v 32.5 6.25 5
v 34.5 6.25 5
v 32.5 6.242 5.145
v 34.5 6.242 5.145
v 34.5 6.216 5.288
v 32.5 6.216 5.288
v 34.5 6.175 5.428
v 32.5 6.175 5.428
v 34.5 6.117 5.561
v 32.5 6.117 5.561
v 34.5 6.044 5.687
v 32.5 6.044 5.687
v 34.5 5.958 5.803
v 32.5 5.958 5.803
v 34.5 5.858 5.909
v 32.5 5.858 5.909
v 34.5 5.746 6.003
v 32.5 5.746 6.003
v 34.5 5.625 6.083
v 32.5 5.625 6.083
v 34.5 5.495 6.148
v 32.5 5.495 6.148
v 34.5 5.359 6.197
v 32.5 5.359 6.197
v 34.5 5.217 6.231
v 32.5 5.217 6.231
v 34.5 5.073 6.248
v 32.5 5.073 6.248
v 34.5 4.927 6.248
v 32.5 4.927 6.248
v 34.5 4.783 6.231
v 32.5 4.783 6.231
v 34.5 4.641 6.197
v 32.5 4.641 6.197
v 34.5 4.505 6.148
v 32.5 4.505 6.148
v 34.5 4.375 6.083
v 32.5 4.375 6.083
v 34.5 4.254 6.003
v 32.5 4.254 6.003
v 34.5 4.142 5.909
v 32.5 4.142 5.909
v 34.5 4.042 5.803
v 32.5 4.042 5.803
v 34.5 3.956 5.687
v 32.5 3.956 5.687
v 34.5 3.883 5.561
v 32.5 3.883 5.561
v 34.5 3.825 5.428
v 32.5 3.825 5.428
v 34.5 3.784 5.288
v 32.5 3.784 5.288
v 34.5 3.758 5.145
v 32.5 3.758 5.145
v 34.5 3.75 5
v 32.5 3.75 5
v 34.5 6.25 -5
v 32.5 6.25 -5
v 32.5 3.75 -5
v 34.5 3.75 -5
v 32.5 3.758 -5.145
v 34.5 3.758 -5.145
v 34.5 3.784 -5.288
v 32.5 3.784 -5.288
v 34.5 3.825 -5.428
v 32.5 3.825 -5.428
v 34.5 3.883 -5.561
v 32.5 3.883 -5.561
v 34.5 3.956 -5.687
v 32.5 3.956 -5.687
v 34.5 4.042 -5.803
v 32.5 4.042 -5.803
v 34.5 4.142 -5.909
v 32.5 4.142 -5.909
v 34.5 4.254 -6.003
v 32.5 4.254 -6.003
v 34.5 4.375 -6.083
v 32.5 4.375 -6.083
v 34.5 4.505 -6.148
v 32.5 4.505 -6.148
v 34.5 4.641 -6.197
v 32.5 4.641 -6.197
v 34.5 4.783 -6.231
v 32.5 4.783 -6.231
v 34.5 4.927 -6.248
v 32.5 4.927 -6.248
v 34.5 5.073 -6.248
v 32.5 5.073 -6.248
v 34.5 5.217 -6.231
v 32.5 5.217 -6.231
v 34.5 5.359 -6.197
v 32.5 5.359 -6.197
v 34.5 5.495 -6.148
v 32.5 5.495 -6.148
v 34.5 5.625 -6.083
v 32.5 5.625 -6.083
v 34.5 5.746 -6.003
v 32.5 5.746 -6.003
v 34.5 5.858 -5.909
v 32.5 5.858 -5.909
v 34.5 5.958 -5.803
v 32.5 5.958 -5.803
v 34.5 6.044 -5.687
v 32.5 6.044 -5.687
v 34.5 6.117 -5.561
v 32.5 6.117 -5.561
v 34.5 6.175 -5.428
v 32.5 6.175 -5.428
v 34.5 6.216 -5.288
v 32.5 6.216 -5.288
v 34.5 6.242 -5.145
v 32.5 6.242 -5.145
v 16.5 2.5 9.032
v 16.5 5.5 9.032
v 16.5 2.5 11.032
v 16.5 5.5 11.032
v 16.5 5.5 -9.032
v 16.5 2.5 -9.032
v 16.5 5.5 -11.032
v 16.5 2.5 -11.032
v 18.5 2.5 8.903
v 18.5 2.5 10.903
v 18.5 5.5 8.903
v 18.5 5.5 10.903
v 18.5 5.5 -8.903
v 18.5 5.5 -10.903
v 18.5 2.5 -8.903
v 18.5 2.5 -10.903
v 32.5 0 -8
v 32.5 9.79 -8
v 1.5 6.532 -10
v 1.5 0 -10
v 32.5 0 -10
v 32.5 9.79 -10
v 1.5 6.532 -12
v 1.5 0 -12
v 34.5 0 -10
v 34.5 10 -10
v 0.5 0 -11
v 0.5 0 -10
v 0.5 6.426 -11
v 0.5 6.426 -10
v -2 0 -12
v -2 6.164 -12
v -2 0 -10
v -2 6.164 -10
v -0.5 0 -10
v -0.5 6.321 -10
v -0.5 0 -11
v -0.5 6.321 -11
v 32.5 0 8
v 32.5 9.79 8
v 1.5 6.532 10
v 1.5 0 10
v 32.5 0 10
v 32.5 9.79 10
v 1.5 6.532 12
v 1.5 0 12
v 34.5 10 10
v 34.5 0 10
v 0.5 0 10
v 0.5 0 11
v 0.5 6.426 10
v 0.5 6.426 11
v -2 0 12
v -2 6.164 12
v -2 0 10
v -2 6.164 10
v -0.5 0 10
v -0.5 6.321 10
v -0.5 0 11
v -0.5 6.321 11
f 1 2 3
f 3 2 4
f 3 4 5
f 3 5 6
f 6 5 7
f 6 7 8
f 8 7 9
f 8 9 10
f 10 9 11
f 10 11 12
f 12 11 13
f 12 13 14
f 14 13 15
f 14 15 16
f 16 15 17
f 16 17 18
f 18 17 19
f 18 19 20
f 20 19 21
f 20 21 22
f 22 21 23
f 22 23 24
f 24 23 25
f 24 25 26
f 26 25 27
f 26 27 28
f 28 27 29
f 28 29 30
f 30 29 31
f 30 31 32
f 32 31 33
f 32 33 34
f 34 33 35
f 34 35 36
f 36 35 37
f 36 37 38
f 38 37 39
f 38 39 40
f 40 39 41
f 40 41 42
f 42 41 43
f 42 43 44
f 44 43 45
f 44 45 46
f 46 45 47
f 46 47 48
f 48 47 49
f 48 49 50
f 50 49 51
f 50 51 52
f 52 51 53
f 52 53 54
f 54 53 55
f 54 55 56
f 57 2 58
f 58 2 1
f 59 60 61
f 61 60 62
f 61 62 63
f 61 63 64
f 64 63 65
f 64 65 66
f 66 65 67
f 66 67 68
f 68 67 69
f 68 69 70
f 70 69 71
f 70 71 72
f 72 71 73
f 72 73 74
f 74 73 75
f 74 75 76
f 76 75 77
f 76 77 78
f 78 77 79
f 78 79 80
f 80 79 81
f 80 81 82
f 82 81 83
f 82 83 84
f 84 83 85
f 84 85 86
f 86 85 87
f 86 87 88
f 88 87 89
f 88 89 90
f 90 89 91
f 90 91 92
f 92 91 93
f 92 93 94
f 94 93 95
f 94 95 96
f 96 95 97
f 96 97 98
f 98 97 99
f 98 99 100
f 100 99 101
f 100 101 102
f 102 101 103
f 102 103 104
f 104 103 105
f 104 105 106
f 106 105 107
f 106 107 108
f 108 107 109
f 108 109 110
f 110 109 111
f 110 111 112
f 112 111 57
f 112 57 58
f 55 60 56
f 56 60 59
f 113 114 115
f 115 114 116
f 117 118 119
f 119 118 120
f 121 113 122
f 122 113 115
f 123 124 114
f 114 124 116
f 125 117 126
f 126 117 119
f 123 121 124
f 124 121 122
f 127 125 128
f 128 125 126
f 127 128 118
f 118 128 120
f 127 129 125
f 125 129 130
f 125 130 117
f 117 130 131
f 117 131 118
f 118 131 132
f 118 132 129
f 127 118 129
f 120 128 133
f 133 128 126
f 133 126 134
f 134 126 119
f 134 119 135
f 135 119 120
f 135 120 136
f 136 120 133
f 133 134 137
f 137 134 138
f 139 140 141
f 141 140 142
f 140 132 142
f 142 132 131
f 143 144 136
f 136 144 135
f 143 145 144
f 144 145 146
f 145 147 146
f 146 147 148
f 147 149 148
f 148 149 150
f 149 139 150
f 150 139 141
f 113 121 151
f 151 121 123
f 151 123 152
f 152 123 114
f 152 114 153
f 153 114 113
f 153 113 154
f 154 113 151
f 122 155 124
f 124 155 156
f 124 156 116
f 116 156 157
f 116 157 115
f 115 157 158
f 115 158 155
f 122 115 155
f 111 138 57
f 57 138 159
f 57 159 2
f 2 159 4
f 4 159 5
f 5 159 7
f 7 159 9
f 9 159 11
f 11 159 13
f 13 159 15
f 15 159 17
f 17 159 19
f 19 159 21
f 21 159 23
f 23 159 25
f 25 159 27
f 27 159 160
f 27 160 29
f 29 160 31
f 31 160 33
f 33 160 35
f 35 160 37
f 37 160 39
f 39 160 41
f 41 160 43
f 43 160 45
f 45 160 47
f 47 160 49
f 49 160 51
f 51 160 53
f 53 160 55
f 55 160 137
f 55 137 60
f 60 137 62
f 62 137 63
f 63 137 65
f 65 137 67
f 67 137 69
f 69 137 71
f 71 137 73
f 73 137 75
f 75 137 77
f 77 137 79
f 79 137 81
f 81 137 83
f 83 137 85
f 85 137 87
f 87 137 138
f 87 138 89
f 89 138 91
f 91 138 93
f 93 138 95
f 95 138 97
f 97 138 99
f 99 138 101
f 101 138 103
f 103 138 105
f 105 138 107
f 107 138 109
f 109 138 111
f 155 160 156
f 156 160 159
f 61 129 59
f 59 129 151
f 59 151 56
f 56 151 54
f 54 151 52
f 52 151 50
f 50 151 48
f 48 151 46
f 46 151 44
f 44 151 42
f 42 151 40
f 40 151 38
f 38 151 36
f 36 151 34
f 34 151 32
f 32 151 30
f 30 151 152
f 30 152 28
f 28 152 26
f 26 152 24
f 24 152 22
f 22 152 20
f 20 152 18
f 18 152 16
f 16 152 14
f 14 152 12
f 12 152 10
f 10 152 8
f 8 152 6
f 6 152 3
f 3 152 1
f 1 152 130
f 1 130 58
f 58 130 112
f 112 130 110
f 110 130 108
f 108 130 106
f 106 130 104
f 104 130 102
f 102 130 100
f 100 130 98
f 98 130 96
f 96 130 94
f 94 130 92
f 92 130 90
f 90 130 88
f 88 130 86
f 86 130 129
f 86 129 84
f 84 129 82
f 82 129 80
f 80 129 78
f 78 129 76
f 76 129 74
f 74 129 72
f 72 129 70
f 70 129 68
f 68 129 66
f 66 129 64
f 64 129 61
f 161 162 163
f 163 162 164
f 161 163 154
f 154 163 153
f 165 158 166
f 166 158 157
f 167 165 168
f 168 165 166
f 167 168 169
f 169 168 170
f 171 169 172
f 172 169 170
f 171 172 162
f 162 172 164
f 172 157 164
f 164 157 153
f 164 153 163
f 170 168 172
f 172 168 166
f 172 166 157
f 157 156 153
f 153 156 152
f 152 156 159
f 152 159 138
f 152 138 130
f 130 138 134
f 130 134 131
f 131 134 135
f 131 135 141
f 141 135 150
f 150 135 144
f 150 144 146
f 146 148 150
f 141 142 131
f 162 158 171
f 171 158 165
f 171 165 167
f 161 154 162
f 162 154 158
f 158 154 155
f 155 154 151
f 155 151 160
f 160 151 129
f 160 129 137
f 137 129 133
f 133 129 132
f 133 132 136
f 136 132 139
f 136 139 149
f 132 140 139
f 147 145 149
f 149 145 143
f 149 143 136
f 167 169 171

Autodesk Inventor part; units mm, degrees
ref_plane "YZ Plane" through (0, 0, 0) normal (1, 0, 0) x (0, 1, 0)
ref_plane "XZ Plane" through (0, 0, 0) normal (0, 1, 0) x (-1, 0, 0)
ref_plane "XY Plane" through (0, 0, 0) normal (0, 0, 1) x (1, 0, 0)
sketch "Sketch1" plane through (0, 0, 0) normal (0, 1, 0) x (-1, 0, 0)
  line L0 (-0.5, 11) -> (0.5, 11) construction
  line L1 (0.5, 11) -> (0.5, -11) construction
  line L2 (0.5, -11) -> (-0.5, -11) construction
  line L3 (-0.5, -11) -> (-0.5, 11) construction
  line L4 (-0.5, 11) -> (0.5, -11) construction
  line L5 (0.5, 11) -> (-0.5, -11) construction
  line L6 (-0.5, 11) -> (-0.5, 9.9373) construction
  line L7 (-1.5, 10) -> (-1.5, 12)
  line L8 (-1.5, 12) -> (1.5, 12)
  line L9 (1.5, 12) -> (1.5, 10)
  line L10 (1.5, 10) -> (-1.5, 12) construction
  line L11 (-1.5, 10) -> (1.5, 12) construction
  line L12 (-0.5, 11) -> (0.5, 11)
  line L13 (0.5, 11) -> (0.5, 10)
  line L14 (-0.5, 10) -> (-0.5, 11)
  line L15 (1.5, 10) -> (0.5, 10)
  line L16 (-0.5, 10) -> (-1.5, 10)
  line L17 (-34.5, 0) -> (-32.5, 0)
  line L18 (-32.5, 0) -> (-32.5, 10)
  line L19 (-32.5, 10) -> (-34.5, 10)
  line L20 (-34.5, 10) -> (-34.5, 0)
  line L21 (-32.5, 10) -> (-1.5, 12)
  line L22 (-1.5, 10) -> (-32.5, 8)
  point P0 (0, 0)
  point P1 (0, 11)
  dimension "d0" = 1
  dimension "d1" = 22
  dimension "d2" = 3
  dimension "d3" = 2
  dimension "d4" = 2
  dimension "d5" = 10
  dimension "d6" = 35
extrude "Extrusion1" add sketch "Sketch1" along normal blind 10
mirror "Mirror1" about plane through (34.5, 0, 0) normal (0, 0, -1) of "Extrusion1"
draft "FaceDraft1" angle 6 pull direction (-1, 0, 0) faces at (11.8333, 10, -10.6667) fixed edges at (34.5, 10, 0)
sketch "Sketch2" plane through (1.5, 0, -12) normal (0, 0, -1) x (-1, 0, 0)
  line L0 (-15, 5.5) -> (-17, 5.5)
  line L1 (-17, 5.5) -> (-17, 2.5)
  line L2 (-17, 2.5) -> (-15, 2.5)
  line L3 (-15, 2.5) -> (-15, 5.5)
  line L4 (-15, 5.5) -> (-17, 2.5) construction
  line L5 (-17, 5.5) -> (-15, 2.5) construction
  line L6 (0, 0) -> (-31, 0) projected
  line L7 (3, 0) -> (3, 6.2162) projected
  point P0 (1.5, 0)
  point P1 (-16, 4)
  dimension "d10" = 2
  dimension "d11" = 3
  dimension "d12" = 2.5
  dimension "d13" = 18
extrude "Extrusion2" cut sketch "Sketch2" against normal through all
sketch "Sketch3" plane through (32.5, 0, -8) normal (-1, 0, 0) x (0, 0, 1)
  line L0 (13, 5) -> (3, 5) construction
  line L1 (13, 6.25) -> (3, 6.25)
  line L2 (3, 3.75) -> (13, 3.75)
  arc A0 (13, 3.75) -> (13, 6.25) centre (13, 5) ccw
  arc A1 (3, 6.25) -> (3, 3.75) centre (3, 5) ccw
  point P0 (8, 0)
  point P1 (8, 5)
  dimension "d16" = 5
  dimension "d17" = 2.5
extrude "Extrusion3" cut sketch "Sketch3" against normal through all
move faces "Move1" translate (-0.5, 0, 0) faces at (-1.5, 4.1442, -11.3333) (-1.5, 4.1442, 11.3333)
properties part number "holder"
